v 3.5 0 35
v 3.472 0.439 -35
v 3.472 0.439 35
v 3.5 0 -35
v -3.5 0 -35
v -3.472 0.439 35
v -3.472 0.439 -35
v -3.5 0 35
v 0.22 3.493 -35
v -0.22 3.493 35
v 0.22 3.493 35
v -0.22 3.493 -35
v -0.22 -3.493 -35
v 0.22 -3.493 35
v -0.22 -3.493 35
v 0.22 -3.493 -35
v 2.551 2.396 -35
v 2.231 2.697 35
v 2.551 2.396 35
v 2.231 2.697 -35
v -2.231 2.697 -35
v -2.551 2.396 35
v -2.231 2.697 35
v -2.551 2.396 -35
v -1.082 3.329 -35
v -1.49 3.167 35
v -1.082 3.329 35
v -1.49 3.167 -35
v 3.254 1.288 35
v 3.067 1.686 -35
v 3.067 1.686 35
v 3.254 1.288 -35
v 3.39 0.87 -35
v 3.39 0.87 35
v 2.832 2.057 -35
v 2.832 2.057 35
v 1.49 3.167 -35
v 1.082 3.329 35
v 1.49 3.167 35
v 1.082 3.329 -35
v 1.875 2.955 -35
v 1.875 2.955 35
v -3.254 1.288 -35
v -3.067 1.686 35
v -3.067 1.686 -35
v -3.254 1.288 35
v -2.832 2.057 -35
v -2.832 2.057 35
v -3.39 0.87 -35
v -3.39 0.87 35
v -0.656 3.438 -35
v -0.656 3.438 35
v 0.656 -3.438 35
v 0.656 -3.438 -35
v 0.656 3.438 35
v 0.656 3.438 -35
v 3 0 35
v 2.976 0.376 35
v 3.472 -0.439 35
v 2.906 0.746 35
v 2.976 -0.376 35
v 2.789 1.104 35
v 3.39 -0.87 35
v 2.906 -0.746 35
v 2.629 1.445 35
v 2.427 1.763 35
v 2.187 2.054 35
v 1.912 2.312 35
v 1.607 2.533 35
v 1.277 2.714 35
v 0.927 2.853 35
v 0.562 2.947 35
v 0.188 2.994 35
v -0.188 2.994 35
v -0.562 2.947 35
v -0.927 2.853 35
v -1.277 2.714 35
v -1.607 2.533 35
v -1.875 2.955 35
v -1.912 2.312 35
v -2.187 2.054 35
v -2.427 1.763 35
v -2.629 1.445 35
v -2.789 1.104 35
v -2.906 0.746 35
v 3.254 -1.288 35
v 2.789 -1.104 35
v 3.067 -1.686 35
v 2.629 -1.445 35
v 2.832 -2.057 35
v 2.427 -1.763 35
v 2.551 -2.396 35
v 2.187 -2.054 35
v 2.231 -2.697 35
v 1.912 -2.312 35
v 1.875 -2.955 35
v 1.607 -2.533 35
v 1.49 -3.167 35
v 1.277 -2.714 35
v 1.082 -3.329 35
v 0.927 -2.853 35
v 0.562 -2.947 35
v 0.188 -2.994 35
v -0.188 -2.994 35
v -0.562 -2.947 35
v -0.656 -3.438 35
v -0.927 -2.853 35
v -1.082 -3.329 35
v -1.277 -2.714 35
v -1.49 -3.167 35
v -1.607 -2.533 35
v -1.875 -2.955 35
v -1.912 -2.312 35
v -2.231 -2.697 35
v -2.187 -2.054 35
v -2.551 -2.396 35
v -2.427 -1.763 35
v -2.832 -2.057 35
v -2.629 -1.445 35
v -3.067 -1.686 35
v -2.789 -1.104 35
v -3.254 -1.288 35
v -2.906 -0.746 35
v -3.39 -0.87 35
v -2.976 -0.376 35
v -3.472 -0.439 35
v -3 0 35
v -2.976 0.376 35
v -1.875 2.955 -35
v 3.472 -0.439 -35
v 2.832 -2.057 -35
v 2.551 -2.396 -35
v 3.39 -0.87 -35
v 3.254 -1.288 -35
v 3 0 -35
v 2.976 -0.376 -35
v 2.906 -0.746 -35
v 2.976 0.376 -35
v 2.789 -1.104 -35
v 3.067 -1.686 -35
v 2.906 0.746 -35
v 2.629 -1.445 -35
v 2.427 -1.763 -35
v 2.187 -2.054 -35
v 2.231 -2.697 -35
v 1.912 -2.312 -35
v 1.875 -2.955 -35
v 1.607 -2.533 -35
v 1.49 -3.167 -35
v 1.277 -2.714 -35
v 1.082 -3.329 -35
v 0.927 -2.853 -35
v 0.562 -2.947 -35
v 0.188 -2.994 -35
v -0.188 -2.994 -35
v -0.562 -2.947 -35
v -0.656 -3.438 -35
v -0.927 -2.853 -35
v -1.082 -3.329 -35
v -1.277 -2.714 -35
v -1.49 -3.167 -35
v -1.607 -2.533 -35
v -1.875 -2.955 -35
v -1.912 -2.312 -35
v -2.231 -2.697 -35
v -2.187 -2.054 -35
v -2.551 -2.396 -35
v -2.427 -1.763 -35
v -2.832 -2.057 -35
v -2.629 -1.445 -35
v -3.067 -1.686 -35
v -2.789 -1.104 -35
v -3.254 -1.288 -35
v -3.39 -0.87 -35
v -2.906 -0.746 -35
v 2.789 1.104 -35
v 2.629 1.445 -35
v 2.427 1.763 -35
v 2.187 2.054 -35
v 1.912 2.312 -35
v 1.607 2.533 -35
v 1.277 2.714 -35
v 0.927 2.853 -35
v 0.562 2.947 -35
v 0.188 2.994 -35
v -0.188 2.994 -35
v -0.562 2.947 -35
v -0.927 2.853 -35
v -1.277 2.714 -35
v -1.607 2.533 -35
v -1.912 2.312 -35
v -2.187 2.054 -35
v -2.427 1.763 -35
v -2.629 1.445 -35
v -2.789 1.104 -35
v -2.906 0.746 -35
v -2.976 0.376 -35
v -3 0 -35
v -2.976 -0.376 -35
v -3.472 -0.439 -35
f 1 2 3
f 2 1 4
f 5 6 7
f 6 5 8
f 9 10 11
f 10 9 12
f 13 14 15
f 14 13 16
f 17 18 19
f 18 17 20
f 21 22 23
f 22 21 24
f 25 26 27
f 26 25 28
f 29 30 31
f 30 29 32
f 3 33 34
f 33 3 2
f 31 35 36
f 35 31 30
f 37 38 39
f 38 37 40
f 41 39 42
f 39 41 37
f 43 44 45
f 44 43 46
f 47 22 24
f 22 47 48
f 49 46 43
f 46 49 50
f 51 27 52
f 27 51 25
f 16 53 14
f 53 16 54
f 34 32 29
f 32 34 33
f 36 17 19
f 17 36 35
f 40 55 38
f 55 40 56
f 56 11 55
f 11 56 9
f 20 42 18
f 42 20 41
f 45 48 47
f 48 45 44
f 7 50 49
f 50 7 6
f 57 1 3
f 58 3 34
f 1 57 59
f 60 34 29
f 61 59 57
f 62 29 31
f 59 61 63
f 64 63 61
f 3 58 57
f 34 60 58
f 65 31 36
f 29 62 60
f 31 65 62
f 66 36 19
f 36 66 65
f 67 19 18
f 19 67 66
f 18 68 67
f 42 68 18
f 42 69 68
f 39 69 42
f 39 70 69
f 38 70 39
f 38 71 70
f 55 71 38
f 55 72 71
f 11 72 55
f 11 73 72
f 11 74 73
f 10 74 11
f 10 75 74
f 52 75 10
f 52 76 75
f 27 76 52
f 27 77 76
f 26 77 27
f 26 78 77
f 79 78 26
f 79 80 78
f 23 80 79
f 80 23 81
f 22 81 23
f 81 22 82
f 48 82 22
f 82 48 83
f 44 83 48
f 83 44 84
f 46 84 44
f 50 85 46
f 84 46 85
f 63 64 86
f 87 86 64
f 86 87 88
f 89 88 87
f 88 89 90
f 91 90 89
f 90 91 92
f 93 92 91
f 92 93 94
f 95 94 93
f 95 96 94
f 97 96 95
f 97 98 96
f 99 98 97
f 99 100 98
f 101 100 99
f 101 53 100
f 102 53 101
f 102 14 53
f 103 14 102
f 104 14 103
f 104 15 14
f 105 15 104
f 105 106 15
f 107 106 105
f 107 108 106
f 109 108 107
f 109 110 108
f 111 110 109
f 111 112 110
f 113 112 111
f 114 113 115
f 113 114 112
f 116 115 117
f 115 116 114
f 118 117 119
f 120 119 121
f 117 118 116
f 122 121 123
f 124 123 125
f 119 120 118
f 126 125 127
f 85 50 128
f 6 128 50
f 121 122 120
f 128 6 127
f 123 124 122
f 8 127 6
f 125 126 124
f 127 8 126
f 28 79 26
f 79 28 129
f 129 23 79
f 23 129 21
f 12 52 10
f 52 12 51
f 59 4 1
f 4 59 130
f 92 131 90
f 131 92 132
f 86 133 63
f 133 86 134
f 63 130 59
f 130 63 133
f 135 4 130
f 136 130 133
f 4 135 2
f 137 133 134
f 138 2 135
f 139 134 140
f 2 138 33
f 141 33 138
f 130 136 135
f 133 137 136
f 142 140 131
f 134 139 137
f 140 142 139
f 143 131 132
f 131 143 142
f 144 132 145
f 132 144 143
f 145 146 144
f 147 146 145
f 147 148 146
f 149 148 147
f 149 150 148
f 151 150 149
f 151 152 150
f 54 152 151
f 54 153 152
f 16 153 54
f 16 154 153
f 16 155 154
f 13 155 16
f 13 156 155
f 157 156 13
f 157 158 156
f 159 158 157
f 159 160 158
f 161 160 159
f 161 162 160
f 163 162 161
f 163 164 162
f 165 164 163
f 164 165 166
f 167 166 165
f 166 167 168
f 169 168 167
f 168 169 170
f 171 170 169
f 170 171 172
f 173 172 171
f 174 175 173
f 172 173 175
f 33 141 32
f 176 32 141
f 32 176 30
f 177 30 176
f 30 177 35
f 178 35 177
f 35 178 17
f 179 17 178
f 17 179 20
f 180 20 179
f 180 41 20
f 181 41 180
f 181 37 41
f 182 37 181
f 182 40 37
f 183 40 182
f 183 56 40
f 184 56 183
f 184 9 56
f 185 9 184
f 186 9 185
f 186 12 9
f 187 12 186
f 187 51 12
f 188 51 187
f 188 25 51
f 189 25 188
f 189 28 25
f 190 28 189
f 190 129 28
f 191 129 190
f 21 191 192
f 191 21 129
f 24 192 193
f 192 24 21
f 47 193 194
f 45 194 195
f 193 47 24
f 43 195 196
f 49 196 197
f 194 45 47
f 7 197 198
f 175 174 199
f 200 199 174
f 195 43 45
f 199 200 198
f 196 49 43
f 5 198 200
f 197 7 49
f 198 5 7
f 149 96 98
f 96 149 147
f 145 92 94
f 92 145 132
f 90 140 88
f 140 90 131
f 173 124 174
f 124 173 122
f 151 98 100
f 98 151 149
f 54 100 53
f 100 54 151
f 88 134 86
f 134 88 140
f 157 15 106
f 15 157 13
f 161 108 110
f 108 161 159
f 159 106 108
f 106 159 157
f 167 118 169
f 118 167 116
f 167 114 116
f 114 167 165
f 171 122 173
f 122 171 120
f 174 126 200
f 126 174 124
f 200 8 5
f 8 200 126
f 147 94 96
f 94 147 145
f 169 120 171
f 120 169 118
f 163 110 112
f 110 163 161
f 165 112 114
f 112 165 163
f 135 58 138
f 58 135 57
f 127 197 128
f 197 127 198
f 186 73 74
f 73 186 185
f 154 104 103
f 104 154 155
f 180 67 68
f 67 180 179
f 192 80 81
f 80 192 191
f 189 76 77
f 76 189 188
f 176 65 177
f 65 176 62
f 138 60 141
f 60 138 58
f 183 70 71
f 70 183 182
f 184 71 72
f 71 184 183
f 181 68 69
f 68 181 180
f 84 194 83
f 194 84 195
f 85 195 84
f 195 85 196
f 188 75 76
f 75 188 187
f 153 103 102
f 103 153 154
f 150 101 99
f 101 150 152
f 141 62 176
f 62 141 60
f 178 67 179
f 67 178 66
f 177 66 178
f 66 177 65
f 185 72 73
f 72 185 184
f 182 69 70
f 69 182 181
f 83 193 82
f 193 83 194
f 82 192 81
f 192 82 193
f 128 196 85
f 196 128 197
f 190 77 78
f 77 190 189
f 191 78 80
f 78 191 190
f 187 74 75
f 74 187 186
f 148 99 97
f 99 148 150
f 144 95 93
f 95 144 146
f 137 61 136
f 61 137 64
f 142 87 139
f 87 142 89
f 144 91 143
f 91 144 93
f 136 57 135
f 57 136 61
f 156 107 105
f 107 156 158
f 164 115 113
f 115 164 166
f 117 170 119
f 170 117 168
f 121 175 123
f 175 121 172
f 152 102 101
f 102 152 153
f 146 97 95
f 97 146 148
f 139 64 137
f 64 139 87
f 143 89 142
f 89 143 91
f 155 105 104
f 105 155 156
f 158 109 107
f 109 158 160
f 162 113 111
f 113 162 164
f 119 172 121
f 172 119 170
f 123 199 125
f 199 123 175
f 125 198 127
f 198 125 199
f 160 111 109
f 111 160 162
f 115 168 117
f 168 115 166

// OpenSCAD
$fn = 50;


difference() {
	union() {
		translate(v = [0, 0, -35.0000000000]) {
			cylinder(h = 70, r = 3.5000000000);
		}
	}
	union() {
		translate(v = [0, 0, -100.0000000000]) {
			cylinder(h = 200, r = 3);
		}
	}
}
